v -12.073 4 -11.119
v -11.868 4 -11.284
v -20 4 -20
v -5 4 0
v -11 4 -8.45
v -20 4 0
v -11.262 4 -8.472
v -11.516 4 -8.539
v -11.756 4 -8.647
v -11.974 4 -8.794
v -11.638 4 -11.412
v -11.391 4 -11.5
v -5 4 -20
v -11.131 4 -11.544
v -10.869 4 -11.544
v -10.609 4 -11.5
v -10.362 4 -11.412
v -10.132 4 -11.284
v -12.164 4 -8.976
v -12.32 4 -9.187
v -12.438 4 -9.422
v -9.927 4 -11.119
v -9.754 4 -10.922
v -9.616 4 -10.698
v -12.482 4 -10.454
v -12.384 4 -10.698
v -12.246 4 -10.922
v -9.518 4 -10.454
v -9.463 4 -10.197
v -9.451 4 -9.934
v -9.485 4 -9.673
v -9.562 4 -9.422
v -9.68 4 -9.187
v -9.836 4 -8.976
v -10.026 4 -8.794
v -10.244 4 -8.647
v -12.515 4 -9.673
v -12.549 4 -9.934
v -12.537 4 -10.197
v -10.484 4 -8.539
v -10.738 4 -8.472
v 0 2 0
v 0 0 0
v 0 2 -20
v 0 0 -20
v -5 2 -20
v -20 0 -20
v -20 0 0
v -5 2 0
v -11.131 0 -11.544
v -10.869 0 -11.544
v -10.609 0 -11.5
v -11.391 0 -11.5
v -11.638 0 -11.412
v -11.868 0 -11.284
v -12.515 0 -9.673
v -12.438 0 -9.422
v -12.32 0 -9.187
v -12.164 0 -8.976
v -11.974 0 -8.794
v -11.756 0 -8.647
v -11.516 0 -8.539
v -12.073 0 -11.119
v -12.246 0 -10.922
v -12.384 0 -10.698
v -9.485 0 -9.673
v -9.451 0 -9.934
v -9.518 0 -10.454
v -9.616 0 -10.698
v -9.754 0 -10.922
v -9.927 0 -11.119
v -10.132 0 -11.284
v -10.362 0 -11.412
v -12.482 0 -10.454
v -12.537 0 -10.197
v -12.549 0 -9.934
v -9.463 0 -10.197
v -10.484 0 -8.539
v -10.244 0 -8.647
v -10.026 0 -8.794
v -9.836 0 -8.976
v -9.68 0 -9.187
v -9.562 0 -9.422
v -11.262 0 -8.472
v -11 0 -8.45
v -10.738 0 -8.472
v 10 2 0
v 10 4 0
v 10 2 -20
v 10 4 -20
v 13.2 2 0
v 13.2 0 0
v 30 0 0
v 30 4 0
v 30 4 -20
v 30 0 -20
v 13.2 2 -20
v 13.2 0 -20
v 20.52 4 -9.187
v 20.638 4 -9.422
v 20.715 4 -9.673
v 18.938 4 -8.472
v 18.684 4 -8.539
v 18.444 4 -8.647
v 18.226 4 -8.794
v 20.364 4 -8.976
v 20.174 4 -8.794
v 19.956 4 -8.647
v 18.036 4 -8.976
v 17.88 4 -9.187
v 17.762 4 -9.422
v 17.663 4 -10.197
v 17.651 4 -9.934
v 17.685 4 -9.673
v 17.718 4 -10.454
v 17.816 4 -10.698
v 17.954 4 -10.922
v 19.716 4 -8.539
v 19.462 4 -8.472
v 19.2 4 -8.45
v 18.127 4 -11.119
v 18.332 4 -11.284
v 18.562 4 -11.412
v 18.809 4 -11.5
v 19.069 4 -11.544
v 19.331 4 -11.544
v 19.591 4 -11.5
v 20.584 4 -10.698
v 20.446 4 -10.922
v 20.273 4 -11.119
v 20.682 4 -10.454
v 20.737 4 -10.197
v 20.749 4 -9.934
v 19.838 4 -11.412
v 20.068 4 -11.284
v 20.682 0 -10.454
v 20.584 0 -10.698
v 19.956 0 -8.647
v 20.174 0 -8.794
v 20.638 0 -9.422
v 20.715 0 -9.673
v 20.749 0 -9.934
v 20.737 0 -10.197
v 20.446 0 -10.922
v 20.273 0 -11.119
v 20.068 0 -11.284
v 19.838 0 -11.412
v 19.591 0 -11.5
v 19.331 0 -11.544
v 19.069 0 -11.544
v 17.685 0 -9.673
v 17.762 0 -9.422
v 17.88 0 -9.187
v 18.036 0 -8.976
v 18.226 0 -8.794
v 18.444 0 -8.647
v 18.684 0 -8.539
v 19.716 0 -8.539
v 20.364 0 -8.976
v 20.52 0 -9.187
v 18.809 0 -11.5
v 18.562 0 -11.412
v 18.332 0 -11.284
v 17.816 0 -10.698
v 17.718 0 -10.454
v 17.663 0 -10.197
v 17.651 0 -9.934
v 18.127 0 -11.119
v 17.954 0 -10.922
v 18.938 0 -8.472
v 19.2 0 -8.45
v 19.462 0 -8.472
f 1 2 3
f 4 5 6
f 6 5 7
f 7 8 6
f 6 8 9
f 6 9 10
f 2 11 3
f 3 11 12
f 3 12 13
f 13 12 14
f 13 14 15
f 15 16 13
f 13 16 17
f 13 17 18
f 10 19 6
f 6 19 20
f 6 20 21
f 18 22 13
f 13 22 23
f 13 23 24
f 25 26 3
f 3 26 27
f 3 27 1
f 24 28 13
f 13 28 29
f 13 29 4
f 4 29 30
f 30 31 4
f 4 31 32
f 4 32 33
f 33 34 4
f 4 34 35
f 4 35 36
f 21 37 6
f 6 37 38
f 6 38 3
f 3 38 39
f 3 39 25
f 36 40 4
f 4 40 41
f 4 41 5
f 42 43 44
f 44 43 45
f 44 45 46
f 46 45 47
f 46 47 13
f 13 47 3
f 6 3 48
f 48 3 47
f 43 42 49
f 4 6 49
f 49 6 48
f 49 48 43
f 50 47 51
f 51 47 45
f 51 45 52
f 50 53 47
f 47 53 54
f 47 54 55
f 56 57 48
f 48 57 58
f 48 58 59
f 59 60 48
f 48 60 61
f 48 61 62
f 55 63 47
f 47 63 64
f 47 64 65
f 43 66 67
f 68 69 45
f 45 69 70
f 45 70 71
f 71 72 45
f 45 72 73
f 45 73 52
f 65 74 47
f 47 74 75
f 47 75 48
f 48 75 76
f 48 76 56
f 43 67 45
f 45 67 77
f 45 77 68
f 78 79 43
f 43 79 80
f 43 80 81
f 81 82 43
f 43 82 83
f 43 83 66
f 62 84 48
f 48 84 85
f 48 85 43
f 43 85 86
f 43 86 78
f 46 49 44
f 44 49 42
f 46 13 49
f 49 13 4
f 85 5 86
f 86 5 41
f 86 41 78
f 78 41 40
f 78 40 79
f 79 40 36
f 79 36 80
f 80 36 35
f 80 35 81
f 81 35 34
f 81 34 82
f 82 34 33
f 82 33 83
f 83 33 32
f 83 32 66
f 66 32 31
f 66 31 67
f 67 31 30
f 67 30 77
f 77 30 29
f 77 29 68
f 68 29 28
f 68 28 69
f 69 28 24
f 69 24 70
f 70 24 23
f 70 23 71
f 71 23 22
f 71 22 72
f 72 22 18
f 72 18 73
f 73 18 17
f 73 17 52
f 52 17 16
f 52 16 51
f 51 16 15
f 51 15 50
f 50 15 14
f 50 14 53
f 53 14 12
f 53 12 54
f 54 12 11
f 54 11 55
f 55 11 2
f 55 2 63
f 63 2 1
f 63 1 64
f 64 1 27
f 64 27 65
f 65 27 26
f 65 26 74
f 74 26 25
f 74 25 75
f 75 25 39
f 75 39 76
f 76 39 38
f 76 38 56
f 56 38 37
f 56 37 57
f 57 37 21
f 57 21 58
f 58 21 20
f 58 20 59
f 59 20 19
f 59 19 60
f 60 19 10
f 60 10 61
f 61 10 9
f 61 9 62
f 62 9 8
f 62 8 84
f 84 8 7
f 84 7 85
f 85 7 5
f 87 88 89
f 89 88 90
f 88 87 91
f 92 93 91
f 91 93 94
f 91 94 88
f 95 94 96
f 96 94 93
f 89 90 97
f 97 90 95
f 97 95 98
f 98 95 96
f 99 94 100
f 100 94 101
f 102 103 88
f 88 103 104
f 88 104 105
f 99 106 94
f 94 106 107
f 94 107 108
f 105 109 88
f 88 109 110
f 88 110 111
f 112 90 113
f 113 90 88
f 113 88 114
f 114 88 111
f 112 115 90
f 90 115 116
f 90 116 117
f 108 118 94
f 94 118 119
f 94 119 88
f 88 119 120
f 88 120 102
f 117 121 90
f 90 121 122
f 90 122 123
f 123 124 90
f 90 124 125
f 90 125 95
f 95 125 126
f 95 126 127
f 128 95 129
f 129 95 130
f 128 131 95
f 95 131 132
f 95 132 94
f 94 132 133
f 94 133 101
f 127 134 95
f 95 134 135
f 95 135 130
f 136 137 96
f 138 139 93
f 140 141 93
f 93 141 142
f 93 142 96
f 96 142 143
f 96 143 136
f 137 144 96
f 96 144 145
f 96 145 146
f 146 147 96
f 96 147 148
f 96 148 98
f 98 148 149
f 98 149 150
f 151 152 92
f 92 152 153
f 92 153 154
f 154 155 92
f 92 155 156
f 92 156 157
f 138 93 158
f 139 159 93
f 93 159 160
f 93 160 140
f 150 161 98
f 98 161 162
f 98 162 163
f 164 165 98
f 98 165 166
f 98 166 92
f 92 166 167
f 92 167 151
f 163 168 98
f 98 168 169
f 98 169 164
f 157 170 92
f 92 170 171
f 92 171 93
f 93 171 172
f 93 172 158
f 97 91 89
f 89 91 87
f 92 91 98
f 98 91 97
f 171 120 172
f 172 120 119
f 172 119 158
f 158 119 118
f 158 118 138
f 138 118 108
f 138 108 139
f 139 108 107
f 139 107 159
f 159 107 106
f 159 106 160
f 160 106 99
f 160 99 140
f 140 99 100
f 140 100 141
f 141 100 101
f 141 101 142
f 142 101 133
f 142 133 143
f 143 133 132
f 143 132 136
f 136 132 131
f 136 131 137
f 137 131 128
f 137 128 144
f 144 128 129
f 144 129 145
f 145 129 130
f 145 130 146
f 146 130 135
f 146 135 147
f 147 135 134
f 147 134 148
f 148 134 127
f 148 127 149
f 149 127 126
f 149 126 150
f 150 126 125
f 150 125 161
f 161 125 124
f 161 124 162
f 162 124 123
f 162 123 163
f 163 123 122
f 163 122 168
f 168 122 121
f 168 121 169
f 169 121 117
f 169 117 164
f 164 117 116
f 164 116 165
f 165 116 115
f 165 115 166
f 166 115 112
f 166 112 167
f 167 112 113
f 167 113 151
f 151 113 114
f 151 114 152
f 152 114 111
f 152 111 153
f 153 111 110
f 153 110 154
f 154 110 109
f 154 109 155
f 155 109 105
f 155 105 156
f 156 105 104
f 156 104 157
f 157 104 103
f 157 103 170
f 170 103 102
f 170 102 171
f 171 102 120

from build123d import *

# Parameters (mm, degrees)
SKETCH1_W             = 20
SKETCH1_H             = 20
BOSS_EXTRUDE1_DEPTH   = 4
BOSS_EXTRUDE1_2_DEPTH = 4
SKETCH2_W             = 20
SKETCH2_H             = 2
CUT_EXTRUDE1_DEPTH    = 5
SKETCH3_W             = 20
SKETCH3_H             = 2
CUT_EXTRUDE2_DEPTH    = 3.2
SKETCH5_R             = 1.55
CUT_EXTRUDE3_DEPTH    = 4
SKETCH6_R             = 1.55
CUT_EXTRUDE4_DEPTH    = 4


with BuildPart() as part:
    # Sketch1 → Boss-Extrude1 (new body)
    with BuildSketch(Plane(origin=(0, 0, 0), x_dir=(1, 0, 0), z_dir=(0, 1, 0))):
        with Locations((-10, 10)):
            Rectangle(SKETCH1_W, SKETCH1_H)
    extrude(amount=BOSS_EXTRUDE1_DEPTH)

    # Sketch2 → Cut-Extrude1 (cut)
    with BuildSketch(Plane(origin=(0, 0, 0), x_dir=(0, 0, -1), z_dir=(1, 0, 0))):
        with Locations((10, 3)):
            Rectangle(SKETCH2_W, SKETCH2_H)
    extrude(amount=-CUT_EXTRUDE1_DEPTH, mode=Mode.SUBTRACT)

    # Sketch5 → Cut-Extrude3 (cut)
    with BuildSketch(Plane(origin=(0, 4, 0), x_dir=(1, 0, 0), z_dir=(0, 1, 0))):
        with Locations((-11, 10)):
            Circle(SKETCH5_R)
    extrude(amount=-CUT_EXTRUDE3_DEPTH, mode=Mode.SUBTRACT)


with BuildPart() as body_2:
    # Sketch1 → Boss-Extrude1 2 (new body)
    with BuildSketch(Plane(origin=(0, 0, 0), x_dir=(1, 0, 0), z_dir=(0, 1, 0))):
        with Locations((20, 10)):
            Rectangle(SKETCH1_W, SKETCH1_H)
    extrude(amount=BOSS_EXTRUDE1_2_DEPTH)

    # Sketch3 → Cut-Extrude2 (cut)
    with BuildSketch(Plane.ZY.offset(-10)):
        with Locations((-10, 1)):
            Rectangle(SKETCH3_W, SKETCH3_H)
    extrude(amount=-CUT_EXTRUDE2_DEPTH, mode=Mode.SUBTRACT)

    # Sketch6 → Cut-Extrude4 (cut)
    with BuildSketch(Plane(origin=(0, 4, 0), x_dir=(1, 0, 0), z_dir=(0, 1, 0))):
        with Locations((19.2, 10)):
            Circle(SKETCH6_R)
    extrude(amount=-CUT_EXTRUDE4_DEPTH, mode=Mode.SUBTRACT)


solid = Compound([part.part, body_2.part])
